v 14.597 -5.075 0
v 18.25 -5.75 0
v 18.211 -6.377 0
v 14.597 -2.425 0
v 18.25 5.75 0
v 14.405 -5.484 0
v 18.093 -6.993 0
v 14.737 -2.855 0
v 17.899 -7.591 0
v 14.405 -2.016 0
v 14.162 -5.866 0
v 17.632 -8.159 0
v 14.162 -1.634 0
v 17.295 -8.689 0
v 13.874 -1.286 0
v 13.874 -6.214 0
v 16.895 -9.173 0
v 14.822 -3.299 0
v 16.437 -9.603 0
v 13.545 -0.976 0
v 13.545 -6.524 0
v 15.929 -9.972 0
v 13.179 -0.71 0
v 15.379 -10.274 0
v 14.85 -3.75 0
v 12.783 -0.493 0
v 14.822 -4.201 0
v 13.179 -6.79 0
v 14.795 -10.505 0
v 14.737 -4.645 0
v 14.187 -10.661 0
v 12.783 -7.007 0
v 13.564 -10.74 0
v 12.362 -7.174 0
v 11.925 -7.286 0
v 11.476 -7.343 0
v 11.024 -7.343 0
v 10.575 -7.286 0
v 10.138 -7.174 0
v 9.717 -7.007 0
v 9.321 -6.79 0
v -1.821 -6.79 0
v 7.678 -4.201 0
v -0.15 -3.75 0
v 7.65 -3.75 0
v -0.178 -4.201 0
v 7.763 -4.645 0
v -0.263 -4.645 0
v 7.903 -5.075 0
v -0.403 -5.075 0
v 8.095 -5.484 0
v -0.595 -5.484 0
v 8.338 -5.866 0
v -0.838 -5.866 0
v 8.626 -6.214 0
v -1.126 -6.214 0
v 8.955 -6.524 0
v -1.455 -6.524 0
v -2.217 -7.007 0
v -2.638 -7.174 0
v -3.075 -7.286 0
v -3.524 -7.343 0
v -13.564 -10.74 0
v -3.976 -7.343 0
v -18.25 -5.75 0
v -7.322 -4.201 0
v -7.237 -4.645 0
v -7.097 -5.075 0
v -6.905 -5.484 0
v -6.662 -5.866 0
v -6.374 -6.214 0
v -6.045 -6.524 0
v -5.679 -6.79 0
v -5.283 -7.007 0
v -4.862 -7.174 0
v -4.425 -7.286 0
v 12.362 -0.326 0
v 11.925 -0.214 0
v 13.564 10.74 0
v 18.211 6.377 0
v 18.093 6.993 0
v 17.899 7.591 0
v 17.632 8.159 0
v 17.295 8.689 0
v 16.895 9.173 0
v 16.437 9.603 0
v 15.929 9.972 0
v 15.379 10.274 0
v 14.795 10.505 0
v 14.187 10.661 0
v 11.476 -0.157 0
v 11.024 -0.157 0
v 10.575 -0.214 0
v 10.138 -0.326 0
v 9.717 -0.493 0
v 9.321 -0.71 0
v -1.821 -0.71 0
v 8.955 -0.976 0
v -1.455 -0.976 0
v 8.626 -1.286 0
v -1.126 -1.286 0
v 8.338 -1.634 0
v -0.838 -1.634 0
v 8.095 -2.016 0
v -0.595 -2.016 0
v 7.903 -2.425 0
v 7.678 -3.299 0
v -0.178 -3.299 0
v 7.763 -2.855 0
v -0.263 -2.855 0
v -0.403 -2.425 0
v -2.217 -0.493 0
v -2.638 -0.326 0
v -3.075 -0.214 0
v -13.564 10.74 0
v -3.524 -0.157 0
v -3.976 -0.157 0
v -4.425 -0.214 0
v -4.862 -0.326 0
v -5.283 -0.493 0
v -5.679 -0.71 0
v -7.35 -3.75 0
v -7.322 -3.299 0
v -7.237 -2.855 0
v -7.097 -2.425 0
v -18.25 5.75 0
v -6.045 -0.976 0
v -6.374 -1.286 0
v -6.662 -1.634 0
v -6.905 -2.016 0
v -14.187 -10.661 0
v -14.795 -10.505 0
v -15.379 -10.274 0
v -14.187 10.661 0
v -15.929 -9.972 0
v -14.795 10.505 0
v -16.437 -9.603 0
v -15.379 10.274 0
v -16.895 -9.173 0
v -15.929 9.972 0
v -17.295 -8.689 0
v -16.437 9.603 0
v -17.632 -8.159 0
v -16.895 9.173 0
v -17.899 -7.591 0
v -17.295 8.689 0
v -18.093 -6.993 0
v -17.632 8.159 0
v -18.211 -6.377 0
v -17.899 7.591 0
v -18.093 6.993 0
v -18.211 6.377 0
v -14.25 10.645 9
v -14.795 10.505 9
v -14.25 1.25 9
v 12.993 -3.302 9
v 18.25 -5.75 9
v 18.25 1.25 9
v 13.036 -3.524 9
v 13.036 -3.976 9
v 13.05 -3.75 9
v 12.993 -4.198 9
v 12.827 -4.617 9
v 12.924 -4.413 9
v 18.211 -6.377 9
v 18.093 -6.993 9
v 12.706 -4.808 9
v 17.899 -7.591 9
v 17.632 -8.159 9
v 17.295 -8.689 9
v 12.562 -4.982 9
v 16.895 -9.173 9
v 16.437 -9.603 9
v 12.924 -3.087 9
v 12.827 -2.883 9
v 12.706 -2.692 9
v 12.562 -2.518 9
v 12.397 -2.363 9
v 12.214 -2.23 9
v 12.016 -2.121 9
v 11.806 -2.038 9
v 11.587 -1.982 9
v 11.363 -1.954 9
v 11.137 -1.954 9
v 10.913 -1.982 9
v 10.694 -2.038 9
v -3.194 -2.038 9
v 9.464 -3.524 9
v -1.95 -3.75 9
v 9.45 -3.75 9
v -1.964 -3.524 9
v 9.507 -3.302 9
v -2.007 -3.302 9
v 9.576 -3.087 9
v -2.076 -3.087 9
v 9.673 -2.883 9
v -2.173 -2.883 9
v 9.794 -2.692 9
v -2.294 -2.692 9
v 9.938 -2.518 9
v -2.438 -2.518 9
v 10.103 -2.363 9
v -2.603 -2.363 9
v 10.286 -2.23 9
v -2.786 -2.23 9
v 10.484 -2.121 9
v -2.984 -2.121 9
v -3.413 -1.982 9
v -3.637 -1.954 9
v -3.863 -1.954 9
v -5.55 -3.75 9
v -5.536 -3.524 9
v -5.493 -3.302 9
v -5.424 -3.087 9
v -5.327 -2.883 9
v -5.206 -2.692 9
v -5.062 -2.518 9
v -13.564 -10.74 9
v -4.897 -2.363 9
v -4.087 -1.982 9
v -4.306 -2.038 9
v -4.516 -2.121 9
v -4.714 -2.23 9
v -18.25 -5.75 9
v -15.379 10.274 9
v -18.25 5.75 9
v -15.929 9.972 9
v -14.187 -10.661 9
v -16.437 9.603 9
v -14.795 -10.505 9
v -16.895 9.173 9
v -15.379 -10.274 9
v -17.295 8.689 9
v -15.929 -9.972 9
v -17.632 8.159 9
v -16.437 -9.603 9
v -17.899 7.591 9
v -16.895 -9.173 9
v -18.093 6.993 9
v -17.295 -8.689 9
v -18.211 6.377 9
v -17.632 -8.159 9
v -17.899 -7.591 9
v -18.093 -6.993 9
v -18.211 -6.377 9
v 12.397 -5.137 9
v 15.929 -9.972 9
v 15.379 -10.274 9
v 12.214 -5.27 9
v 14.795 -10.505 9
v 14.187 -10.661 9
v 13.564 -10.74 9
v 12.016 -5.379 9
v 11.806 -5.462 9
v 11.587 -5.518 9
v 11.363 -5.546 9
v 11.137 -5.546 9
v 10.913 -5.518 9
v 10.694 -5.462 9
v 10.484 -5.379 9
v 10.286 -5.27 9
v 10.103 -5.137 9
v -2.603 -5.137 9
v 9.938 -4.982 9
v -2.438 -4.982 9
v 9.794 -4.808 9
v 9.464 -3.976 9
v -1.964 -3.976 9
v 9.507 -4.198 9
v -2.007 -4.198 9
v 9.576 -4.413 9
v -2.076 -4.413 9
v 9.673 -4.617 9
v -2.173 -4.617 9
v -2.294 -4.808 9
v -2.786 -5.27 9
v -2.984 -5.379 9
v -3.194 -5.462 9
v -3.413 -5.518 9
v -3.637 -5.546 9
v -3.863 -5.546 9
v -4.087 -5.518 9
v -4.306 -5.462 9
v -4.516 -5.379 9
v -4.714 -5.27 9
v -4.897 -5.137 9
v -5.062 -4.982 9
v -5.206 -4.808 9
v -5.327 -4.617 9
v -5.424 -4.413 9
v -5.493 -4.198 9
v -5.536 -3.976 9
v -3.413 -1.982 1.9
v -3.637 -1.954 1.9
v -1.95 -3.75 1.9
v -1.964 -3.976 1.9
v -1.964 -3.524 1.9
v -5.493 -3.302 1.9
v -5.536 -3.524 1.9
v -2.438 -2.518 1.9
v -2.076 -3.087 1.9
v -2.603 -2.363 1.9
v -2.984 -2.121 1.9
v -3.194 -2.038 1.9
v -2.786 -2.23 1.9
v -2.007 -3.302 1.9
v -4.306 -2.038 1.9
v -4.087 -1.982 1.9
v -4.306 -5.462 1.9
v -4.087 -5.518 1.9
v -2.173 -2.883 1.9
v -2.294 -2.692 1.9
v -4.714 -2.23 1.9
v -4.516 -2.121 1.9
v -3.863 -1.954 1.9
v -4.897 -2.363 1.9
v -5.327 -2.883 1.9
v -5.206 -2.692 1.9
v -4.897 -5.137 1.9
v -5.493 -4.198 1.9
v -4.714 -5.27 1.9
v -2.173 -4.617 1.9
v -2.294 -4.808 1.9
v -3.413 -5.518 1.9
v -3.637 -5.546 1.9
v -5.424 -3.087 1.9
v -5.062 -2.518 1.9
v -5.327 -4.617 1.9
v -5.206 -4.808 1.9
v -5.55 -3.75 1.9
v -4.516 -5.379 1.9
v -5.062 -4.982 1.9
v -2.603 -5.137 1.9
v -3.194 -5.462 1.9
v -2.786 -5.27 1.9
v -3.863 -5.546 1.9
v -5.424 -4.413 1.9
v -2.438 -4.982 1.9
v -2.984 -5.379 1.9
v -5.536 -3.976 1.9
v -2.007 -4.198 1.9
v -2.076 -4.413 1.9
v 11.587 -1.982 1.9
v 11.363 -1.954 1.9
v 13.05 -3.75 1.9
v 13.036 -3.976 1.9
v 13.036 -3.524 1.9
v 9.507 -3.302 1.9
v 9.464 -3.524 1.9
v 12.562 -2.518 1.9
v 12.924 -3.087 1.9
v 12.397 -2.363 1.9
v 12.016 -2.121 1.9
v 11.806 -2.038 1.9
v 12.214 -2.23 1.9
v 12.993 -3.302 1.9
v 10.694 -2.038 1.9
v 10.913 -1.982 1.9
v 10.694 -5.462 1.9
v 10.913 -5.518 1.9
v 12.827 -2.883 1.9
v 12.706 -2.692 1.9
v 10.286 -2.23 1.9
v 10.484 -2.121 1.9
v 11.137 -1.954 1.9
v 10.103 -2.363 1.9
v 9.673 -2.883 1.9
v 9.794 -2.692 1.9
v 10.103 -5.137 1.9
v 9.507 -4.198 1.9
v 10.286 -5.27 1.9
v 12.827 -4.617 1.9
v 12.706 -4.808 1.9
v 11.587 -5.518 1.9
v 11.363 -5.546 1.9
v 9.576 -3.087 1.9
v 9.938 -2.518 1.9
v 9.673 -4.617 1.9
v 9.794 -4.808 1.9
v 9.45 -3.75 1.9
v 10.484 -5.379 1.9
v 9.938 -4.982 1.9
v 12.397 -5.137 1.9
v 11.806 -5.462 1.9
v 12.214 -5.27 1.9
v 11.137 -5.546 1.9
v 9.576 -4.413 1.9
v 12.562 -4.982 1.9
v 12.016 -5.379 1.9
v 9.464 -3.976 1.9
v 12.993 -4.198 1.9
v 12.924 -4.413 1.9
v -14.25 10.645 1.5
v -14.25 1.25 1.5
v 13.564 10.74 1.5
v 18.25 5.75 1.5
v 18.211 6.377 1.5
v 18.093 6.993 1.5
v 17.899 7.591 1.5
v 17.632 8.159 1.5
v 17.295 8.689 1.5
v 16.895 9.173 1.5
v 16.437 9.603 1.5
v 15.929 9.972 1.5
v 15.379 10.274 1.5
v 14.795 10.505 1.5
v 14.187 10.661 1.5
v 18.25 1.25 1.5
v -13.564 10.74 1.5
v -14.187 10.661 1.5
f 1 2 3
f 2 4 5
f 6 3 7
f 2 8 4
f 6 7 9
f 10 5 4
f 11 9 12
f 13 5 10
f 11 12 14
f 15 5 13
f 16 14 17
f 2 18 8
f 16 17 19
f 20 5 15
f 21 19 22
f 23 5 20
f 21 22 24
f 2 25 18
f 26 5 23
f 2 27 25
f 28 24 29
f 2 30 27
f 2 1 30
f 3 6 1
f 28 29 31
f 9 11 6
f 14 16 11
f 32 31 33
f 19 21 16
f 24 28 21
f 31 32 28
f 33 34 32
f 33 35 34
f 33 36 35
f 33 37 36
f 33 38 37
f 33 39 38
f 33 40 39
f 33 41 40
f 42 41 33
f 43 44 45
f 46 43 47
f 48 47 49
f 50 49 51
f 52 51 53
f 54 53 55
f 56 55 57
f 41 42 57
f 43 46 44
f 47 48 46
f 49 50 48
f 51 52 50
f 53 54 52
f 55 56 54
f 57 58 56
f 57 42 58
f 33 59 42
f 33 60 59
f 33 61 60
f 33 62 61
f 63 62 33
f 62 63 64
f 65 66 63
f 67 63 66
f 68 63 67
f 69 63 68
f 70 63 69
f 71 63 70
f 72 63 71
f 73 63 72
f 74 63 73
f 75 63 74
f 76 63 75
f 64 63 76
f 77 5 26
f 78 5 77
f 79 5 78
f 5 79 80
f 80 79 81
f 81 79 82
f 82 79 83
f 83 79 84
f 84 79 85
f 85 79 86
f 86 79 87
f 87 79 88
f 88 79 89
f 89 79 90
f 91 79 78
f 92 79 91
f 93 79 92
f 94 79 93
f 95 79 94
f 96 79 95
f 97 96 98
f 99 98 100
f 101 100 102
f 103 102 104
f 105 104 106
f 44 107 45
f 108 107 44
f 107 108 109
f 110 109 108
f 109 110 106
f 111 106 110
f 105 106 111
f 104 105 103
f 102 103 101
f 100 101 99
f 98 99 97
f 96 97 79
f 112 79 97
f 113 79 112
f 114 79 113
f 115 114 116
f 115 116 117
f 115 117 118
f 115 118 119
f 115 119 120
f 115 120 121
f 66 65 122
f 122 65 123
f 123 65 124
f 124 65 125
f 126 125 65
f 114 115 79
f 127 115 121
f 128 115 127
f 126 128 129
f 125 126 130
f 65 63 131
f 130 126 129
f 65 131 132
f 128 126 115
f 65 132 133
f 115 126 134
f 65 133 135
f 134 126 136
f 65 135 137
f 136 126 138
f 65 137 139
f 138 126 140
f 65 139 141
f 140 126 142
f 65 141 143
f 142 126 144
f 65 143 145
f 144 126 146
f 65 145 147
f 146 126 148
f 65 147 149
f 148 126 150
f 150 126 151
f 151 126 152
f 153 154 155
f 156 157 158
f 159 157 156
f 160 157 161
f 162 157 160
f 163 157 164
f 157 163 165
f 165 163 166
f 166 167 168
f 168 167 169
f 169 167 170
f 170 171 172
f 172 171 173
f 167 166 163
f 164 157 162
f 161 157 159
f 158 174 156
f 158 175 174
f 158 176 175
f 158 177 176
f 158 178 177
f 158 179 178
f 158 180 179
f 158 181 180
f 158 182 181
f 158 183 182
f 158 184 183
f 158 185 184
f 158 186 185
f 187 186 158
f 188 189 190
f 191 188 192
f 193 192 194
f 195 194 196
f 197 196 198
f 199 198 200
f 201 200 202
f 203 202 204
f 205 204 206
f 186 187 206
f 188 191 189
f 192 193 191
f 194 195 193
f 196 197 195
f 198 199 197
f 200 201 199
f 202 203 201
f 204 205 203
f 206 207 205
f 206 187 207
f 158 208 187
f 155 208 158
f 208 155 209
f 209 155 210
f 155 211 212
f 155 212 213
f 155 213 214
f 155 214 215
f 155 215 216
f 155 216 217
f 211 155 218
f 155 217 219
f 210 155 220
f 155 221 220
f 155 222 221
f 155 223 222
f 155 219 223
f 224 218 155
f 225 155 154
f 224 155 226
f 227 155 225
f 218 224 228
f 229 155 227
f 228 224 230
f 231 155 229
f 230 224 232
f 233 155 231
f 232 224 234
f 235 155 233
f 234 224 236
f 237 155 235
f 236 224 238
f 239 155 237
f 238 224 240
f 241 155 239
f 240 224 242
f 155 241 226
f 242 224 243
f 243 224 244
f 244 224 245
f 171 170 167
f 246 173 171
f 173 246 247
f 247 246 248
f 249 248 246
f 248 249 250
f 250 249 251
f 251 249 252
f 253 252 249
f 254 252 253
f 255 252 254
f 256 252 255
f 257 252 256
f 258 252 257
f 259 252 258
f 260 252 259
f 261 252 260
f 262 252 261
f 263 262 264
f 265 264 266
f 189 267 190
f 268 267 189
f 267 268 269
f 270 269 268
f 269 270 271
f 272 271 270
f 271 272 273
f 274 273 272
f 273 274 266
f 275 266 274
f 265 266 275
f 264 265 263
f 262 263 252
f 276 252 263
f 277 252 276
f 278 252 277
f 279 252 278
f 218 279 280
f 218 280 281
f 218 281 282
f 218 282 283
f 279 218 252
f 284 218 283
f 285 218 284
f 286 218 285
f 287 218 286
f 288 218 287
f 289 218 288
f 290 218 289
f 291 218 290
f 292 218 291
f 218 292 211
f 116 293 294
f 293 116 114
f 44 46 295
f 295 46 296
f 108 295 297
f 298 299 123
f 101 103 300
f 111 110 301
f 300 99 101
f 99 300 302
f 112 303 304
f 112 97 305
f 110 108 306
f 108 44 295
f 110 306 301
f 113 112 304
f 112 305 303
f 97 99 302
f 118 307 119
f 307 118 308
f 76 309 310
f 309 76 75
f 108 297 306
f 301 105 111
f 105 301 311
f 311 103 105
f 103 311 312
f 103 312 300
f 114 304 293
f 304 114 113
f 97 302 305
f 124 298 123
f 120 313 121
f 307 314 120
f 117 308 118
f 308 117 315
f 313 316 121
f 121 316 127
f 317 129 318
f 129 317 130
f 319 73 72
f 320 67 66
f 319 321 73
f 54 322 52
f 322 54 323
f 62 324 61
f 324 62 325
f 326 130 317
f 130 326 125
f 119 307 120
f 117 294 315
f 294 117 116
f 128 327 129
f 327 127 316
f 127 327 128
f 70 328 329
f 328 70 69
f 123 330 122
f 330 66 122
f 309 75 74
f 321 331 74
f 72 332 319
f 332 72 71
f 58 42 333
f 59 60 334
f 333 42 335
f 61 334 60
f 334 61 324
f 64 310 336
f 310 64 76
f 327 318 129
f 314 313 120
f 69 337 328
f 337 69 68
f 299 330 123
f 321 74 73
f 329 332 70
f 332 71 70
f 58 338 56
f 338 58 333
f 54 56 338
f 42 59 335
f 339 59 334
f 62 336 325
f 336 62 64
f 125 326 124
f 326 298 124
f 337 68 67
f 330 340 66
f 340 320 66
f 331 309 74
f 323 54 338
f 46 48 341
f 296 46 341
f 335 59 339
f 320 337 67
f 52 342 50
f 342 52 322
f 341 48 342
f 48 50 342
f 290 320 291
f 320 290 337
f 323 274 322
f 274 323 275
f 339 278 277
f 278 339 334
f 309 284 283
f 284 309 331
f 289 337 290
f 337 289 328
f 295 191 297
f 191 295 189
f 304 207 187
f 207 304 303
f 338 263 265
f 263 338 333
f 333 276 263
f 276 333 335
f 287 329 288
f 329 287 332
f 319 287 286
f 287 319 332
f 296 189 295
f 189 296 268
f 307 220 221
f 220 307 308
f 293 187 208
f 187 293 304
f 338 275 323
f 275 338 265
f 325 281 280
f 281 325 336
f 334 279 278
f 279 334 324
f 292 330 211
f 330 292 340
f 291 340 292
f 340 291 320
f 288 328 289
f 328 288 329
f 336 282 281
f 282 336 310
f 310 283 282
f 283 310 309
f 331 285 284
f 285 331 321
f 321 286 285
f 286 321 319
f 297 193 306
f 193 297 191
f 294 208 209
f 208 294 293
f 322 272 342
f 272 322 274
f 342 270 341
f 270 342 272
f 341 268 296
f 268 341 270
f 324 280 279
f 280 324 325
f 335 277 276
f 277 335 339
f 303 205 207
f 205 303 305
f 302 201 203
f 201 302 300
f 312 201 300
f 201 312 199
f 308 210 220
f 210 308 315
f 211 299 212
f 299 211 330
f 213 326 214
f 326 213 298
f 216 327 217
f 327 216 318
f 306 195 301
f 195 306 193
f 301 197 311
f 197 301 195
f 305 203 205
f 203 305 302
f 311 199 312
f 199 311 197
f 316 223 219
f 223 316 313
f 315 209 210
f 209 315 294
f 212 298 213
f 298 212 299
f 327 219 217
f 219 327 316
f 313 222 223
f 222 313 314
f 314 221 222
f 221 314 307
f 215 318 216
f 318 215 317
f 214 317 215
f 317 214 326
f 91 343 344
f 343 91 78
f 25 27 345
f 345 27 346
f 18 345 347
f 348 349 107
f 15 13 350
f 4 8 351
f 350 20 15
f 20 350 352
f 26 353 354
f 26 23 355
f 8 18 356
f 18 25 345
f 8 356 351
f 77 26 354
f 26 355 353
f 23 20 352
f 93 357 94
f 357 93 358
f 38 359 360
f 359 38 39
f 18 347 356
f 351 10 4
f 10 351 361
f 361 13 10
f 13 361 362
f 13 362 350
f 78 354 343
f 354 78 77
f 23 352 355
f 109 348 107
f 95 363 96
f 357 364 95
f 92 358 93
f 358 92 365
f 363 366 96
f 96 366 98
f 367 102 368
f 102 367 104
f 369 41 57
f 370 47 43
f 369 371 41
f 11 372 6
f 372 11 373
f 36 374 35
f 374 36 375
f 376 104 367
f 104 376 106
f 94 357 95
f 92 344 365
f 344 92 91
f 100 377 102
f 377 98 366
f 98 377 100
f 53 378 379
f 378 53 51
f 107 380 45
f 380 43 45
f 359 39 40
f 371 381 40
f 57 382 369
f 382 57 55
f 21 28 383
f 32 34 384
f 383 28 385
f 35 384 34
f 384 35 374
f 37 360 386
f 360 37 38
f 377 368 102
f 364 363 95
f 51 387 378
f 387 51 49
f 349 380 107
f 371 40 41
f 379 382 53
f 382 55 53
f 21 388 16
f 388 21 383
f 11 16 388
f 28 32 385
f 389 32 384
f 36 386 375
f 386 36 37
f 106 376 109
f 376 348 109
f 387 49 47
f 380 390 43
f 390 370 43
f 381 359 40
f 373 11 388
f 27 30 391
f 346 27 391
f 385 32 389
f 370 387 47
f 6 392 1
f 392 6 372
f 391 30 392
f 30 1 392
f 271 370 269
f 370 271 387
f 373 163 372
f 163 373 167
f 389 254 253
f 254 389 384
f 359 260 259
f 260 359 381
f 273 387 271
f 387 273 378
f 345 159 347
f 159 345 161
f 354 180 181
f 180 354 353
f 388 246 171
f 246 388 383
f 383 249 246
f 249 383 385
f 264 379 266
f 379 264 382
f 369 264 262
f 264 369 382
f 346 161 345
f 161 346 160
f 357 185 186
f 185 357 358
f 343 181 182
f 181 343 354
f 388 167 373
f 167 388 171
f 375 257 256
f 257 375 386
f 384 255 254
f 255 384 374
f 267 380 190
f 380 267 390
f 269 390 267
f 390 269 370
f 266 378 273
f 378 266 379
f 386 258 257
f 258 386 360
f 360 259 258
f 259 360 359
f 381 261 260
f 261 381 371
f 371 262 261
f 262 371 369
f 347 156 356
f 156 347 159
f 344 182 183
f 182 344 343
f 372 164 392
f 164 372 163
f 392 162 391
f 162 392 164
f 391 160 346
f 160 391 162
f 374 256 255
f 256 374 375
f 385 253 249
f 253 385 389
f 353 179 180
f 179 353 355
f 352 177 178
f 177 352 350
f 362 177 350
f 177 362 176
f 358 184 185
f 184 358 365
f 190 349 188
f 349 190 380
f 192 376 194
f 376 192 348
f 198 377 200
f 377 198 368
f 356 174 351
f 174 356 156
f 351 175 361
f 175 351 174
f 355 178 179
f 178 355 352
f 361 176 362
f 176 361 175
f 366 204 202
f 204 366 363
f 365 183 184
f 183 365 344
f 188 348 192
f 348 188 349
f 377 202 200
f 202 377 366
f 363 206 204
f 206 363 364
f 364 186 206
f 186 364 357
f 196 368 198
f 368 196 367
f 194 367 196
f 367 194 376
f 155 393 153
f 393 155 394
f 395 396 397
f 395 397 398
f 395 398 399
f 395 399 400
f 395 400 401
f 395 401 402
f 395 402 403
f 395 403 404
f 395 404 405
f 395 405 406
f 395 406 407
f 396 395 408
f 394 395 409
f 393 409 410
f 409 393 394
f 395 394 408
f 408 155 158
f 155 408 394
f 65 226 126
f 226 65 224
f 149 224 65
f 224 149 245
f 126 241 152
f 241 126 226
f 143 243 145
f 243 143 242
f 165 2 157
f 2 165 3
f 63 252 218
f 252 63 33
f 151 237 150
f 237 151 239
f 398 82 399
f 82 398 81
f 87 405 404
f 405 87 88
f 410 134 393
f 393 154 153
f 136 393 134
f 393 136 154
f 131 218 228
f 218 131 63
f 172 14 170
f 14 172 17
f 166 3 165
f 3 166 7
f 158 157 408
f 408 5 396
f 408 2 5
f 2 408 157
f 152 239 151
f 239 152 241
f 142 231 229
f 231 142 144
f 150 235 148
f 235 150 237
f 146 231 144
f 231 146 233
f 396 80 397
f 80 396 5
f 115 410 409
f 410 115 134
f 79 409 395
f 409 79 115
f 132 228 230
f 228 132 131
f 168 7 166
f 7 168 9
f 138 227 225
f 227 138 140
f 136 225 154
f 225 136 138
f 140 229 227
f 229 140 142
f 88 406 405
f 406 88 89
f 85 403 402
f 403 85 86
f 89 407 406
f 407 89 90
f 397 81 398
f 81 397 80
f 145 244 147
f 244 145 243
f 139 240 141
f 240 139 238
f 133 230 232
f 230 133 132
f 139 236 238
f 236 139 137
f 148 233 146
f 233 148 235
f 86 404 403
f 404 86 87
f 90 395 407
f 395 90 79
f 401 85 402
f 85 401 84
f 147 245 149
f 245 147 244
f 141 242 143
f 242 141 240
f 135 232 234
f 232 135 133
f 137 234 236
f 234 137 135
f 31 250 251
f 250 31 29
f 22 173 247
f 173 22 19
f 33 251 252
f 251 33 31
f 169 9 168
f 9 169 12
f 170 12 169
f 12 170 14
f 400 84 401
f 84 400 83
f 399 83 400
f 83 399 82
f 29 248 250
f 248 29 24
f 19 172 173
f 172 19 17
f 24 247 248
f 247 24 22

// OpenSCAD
$fn = 50;


difference() {
	union() {
		hull() {
			translate(v = [-13.2500000000, 5.7500000000, 0]) {
				cylinder(h = 9, r = 5);
			}
			translate(v = [13.2500000000, 5.7500000000, 0]) {
				cylinder(h = 9, r = 5);
			}
			translate(v = [-13.2500000000, -5.7500000000, 0]) {
				cylinder(h = 9, r = 5);
			}
			translate(v = [13.2500000000, -5.7500000000, 0]) {
				cylinder(h = 9, r = 5);
			}
		}
	}
	union() {
		translate(v = [-3.7500000000, -3.7500000000, 0]) {
			rotate(a = [180, 0, 0]) {
				difference() {
					union() {
						#translate(v = [0, 0, -9.0000000000]) {
							cylinder(h = 9, r = 1.5000000000);
						}
						#translate(v = [0, 0, -1.9000000000]) {
							cylinder(h = 1.9000000000, r1 = 1.8000000000, r2 = 3.6000000000);
						}
						#translate(v = [0, 0, -9.0000000000]) {
							cylinder(h = 9, r = 1.8000000000);
						}
						#translate(v = [0, 0, -9.0000000000]) {
							cylinder(h = 9, r = 1.5000000000);
						}
					}
					union();
				}
			}
		}
		translate(v = [11.2500000000, -3.7500000000, 0]) {
			rotate(a = [180, 0, 0]) {
				difference() {
					union() {
						#translate(v = [0, 0, -9.0000000000]) {
							cylinder(h = 9, r = 1.5000000000);
						}
						#translate(v = [0, 0, -1.9000000000]) {
							cylinder(h = 1.9000000000, r1 = 1.8000000000, r2 = 3.6000000000);
						}
						#translate(v = [0, 0, -9.0000000000]) {
							cylinder(h = 9, r = 1.8000000000);
						}
						#translate(v = [0, 0, -9.0000000000]) {
							cylinder(h = 9, r = 1.5000000000);
						}
					}
					union();
				}
			}
		}
		#translate(v = [-14.2500000000, 1.2500000000, 1.5000000000]) {
			cube(size = [156, 100, 7.5000000000]);
		}
	}
}
